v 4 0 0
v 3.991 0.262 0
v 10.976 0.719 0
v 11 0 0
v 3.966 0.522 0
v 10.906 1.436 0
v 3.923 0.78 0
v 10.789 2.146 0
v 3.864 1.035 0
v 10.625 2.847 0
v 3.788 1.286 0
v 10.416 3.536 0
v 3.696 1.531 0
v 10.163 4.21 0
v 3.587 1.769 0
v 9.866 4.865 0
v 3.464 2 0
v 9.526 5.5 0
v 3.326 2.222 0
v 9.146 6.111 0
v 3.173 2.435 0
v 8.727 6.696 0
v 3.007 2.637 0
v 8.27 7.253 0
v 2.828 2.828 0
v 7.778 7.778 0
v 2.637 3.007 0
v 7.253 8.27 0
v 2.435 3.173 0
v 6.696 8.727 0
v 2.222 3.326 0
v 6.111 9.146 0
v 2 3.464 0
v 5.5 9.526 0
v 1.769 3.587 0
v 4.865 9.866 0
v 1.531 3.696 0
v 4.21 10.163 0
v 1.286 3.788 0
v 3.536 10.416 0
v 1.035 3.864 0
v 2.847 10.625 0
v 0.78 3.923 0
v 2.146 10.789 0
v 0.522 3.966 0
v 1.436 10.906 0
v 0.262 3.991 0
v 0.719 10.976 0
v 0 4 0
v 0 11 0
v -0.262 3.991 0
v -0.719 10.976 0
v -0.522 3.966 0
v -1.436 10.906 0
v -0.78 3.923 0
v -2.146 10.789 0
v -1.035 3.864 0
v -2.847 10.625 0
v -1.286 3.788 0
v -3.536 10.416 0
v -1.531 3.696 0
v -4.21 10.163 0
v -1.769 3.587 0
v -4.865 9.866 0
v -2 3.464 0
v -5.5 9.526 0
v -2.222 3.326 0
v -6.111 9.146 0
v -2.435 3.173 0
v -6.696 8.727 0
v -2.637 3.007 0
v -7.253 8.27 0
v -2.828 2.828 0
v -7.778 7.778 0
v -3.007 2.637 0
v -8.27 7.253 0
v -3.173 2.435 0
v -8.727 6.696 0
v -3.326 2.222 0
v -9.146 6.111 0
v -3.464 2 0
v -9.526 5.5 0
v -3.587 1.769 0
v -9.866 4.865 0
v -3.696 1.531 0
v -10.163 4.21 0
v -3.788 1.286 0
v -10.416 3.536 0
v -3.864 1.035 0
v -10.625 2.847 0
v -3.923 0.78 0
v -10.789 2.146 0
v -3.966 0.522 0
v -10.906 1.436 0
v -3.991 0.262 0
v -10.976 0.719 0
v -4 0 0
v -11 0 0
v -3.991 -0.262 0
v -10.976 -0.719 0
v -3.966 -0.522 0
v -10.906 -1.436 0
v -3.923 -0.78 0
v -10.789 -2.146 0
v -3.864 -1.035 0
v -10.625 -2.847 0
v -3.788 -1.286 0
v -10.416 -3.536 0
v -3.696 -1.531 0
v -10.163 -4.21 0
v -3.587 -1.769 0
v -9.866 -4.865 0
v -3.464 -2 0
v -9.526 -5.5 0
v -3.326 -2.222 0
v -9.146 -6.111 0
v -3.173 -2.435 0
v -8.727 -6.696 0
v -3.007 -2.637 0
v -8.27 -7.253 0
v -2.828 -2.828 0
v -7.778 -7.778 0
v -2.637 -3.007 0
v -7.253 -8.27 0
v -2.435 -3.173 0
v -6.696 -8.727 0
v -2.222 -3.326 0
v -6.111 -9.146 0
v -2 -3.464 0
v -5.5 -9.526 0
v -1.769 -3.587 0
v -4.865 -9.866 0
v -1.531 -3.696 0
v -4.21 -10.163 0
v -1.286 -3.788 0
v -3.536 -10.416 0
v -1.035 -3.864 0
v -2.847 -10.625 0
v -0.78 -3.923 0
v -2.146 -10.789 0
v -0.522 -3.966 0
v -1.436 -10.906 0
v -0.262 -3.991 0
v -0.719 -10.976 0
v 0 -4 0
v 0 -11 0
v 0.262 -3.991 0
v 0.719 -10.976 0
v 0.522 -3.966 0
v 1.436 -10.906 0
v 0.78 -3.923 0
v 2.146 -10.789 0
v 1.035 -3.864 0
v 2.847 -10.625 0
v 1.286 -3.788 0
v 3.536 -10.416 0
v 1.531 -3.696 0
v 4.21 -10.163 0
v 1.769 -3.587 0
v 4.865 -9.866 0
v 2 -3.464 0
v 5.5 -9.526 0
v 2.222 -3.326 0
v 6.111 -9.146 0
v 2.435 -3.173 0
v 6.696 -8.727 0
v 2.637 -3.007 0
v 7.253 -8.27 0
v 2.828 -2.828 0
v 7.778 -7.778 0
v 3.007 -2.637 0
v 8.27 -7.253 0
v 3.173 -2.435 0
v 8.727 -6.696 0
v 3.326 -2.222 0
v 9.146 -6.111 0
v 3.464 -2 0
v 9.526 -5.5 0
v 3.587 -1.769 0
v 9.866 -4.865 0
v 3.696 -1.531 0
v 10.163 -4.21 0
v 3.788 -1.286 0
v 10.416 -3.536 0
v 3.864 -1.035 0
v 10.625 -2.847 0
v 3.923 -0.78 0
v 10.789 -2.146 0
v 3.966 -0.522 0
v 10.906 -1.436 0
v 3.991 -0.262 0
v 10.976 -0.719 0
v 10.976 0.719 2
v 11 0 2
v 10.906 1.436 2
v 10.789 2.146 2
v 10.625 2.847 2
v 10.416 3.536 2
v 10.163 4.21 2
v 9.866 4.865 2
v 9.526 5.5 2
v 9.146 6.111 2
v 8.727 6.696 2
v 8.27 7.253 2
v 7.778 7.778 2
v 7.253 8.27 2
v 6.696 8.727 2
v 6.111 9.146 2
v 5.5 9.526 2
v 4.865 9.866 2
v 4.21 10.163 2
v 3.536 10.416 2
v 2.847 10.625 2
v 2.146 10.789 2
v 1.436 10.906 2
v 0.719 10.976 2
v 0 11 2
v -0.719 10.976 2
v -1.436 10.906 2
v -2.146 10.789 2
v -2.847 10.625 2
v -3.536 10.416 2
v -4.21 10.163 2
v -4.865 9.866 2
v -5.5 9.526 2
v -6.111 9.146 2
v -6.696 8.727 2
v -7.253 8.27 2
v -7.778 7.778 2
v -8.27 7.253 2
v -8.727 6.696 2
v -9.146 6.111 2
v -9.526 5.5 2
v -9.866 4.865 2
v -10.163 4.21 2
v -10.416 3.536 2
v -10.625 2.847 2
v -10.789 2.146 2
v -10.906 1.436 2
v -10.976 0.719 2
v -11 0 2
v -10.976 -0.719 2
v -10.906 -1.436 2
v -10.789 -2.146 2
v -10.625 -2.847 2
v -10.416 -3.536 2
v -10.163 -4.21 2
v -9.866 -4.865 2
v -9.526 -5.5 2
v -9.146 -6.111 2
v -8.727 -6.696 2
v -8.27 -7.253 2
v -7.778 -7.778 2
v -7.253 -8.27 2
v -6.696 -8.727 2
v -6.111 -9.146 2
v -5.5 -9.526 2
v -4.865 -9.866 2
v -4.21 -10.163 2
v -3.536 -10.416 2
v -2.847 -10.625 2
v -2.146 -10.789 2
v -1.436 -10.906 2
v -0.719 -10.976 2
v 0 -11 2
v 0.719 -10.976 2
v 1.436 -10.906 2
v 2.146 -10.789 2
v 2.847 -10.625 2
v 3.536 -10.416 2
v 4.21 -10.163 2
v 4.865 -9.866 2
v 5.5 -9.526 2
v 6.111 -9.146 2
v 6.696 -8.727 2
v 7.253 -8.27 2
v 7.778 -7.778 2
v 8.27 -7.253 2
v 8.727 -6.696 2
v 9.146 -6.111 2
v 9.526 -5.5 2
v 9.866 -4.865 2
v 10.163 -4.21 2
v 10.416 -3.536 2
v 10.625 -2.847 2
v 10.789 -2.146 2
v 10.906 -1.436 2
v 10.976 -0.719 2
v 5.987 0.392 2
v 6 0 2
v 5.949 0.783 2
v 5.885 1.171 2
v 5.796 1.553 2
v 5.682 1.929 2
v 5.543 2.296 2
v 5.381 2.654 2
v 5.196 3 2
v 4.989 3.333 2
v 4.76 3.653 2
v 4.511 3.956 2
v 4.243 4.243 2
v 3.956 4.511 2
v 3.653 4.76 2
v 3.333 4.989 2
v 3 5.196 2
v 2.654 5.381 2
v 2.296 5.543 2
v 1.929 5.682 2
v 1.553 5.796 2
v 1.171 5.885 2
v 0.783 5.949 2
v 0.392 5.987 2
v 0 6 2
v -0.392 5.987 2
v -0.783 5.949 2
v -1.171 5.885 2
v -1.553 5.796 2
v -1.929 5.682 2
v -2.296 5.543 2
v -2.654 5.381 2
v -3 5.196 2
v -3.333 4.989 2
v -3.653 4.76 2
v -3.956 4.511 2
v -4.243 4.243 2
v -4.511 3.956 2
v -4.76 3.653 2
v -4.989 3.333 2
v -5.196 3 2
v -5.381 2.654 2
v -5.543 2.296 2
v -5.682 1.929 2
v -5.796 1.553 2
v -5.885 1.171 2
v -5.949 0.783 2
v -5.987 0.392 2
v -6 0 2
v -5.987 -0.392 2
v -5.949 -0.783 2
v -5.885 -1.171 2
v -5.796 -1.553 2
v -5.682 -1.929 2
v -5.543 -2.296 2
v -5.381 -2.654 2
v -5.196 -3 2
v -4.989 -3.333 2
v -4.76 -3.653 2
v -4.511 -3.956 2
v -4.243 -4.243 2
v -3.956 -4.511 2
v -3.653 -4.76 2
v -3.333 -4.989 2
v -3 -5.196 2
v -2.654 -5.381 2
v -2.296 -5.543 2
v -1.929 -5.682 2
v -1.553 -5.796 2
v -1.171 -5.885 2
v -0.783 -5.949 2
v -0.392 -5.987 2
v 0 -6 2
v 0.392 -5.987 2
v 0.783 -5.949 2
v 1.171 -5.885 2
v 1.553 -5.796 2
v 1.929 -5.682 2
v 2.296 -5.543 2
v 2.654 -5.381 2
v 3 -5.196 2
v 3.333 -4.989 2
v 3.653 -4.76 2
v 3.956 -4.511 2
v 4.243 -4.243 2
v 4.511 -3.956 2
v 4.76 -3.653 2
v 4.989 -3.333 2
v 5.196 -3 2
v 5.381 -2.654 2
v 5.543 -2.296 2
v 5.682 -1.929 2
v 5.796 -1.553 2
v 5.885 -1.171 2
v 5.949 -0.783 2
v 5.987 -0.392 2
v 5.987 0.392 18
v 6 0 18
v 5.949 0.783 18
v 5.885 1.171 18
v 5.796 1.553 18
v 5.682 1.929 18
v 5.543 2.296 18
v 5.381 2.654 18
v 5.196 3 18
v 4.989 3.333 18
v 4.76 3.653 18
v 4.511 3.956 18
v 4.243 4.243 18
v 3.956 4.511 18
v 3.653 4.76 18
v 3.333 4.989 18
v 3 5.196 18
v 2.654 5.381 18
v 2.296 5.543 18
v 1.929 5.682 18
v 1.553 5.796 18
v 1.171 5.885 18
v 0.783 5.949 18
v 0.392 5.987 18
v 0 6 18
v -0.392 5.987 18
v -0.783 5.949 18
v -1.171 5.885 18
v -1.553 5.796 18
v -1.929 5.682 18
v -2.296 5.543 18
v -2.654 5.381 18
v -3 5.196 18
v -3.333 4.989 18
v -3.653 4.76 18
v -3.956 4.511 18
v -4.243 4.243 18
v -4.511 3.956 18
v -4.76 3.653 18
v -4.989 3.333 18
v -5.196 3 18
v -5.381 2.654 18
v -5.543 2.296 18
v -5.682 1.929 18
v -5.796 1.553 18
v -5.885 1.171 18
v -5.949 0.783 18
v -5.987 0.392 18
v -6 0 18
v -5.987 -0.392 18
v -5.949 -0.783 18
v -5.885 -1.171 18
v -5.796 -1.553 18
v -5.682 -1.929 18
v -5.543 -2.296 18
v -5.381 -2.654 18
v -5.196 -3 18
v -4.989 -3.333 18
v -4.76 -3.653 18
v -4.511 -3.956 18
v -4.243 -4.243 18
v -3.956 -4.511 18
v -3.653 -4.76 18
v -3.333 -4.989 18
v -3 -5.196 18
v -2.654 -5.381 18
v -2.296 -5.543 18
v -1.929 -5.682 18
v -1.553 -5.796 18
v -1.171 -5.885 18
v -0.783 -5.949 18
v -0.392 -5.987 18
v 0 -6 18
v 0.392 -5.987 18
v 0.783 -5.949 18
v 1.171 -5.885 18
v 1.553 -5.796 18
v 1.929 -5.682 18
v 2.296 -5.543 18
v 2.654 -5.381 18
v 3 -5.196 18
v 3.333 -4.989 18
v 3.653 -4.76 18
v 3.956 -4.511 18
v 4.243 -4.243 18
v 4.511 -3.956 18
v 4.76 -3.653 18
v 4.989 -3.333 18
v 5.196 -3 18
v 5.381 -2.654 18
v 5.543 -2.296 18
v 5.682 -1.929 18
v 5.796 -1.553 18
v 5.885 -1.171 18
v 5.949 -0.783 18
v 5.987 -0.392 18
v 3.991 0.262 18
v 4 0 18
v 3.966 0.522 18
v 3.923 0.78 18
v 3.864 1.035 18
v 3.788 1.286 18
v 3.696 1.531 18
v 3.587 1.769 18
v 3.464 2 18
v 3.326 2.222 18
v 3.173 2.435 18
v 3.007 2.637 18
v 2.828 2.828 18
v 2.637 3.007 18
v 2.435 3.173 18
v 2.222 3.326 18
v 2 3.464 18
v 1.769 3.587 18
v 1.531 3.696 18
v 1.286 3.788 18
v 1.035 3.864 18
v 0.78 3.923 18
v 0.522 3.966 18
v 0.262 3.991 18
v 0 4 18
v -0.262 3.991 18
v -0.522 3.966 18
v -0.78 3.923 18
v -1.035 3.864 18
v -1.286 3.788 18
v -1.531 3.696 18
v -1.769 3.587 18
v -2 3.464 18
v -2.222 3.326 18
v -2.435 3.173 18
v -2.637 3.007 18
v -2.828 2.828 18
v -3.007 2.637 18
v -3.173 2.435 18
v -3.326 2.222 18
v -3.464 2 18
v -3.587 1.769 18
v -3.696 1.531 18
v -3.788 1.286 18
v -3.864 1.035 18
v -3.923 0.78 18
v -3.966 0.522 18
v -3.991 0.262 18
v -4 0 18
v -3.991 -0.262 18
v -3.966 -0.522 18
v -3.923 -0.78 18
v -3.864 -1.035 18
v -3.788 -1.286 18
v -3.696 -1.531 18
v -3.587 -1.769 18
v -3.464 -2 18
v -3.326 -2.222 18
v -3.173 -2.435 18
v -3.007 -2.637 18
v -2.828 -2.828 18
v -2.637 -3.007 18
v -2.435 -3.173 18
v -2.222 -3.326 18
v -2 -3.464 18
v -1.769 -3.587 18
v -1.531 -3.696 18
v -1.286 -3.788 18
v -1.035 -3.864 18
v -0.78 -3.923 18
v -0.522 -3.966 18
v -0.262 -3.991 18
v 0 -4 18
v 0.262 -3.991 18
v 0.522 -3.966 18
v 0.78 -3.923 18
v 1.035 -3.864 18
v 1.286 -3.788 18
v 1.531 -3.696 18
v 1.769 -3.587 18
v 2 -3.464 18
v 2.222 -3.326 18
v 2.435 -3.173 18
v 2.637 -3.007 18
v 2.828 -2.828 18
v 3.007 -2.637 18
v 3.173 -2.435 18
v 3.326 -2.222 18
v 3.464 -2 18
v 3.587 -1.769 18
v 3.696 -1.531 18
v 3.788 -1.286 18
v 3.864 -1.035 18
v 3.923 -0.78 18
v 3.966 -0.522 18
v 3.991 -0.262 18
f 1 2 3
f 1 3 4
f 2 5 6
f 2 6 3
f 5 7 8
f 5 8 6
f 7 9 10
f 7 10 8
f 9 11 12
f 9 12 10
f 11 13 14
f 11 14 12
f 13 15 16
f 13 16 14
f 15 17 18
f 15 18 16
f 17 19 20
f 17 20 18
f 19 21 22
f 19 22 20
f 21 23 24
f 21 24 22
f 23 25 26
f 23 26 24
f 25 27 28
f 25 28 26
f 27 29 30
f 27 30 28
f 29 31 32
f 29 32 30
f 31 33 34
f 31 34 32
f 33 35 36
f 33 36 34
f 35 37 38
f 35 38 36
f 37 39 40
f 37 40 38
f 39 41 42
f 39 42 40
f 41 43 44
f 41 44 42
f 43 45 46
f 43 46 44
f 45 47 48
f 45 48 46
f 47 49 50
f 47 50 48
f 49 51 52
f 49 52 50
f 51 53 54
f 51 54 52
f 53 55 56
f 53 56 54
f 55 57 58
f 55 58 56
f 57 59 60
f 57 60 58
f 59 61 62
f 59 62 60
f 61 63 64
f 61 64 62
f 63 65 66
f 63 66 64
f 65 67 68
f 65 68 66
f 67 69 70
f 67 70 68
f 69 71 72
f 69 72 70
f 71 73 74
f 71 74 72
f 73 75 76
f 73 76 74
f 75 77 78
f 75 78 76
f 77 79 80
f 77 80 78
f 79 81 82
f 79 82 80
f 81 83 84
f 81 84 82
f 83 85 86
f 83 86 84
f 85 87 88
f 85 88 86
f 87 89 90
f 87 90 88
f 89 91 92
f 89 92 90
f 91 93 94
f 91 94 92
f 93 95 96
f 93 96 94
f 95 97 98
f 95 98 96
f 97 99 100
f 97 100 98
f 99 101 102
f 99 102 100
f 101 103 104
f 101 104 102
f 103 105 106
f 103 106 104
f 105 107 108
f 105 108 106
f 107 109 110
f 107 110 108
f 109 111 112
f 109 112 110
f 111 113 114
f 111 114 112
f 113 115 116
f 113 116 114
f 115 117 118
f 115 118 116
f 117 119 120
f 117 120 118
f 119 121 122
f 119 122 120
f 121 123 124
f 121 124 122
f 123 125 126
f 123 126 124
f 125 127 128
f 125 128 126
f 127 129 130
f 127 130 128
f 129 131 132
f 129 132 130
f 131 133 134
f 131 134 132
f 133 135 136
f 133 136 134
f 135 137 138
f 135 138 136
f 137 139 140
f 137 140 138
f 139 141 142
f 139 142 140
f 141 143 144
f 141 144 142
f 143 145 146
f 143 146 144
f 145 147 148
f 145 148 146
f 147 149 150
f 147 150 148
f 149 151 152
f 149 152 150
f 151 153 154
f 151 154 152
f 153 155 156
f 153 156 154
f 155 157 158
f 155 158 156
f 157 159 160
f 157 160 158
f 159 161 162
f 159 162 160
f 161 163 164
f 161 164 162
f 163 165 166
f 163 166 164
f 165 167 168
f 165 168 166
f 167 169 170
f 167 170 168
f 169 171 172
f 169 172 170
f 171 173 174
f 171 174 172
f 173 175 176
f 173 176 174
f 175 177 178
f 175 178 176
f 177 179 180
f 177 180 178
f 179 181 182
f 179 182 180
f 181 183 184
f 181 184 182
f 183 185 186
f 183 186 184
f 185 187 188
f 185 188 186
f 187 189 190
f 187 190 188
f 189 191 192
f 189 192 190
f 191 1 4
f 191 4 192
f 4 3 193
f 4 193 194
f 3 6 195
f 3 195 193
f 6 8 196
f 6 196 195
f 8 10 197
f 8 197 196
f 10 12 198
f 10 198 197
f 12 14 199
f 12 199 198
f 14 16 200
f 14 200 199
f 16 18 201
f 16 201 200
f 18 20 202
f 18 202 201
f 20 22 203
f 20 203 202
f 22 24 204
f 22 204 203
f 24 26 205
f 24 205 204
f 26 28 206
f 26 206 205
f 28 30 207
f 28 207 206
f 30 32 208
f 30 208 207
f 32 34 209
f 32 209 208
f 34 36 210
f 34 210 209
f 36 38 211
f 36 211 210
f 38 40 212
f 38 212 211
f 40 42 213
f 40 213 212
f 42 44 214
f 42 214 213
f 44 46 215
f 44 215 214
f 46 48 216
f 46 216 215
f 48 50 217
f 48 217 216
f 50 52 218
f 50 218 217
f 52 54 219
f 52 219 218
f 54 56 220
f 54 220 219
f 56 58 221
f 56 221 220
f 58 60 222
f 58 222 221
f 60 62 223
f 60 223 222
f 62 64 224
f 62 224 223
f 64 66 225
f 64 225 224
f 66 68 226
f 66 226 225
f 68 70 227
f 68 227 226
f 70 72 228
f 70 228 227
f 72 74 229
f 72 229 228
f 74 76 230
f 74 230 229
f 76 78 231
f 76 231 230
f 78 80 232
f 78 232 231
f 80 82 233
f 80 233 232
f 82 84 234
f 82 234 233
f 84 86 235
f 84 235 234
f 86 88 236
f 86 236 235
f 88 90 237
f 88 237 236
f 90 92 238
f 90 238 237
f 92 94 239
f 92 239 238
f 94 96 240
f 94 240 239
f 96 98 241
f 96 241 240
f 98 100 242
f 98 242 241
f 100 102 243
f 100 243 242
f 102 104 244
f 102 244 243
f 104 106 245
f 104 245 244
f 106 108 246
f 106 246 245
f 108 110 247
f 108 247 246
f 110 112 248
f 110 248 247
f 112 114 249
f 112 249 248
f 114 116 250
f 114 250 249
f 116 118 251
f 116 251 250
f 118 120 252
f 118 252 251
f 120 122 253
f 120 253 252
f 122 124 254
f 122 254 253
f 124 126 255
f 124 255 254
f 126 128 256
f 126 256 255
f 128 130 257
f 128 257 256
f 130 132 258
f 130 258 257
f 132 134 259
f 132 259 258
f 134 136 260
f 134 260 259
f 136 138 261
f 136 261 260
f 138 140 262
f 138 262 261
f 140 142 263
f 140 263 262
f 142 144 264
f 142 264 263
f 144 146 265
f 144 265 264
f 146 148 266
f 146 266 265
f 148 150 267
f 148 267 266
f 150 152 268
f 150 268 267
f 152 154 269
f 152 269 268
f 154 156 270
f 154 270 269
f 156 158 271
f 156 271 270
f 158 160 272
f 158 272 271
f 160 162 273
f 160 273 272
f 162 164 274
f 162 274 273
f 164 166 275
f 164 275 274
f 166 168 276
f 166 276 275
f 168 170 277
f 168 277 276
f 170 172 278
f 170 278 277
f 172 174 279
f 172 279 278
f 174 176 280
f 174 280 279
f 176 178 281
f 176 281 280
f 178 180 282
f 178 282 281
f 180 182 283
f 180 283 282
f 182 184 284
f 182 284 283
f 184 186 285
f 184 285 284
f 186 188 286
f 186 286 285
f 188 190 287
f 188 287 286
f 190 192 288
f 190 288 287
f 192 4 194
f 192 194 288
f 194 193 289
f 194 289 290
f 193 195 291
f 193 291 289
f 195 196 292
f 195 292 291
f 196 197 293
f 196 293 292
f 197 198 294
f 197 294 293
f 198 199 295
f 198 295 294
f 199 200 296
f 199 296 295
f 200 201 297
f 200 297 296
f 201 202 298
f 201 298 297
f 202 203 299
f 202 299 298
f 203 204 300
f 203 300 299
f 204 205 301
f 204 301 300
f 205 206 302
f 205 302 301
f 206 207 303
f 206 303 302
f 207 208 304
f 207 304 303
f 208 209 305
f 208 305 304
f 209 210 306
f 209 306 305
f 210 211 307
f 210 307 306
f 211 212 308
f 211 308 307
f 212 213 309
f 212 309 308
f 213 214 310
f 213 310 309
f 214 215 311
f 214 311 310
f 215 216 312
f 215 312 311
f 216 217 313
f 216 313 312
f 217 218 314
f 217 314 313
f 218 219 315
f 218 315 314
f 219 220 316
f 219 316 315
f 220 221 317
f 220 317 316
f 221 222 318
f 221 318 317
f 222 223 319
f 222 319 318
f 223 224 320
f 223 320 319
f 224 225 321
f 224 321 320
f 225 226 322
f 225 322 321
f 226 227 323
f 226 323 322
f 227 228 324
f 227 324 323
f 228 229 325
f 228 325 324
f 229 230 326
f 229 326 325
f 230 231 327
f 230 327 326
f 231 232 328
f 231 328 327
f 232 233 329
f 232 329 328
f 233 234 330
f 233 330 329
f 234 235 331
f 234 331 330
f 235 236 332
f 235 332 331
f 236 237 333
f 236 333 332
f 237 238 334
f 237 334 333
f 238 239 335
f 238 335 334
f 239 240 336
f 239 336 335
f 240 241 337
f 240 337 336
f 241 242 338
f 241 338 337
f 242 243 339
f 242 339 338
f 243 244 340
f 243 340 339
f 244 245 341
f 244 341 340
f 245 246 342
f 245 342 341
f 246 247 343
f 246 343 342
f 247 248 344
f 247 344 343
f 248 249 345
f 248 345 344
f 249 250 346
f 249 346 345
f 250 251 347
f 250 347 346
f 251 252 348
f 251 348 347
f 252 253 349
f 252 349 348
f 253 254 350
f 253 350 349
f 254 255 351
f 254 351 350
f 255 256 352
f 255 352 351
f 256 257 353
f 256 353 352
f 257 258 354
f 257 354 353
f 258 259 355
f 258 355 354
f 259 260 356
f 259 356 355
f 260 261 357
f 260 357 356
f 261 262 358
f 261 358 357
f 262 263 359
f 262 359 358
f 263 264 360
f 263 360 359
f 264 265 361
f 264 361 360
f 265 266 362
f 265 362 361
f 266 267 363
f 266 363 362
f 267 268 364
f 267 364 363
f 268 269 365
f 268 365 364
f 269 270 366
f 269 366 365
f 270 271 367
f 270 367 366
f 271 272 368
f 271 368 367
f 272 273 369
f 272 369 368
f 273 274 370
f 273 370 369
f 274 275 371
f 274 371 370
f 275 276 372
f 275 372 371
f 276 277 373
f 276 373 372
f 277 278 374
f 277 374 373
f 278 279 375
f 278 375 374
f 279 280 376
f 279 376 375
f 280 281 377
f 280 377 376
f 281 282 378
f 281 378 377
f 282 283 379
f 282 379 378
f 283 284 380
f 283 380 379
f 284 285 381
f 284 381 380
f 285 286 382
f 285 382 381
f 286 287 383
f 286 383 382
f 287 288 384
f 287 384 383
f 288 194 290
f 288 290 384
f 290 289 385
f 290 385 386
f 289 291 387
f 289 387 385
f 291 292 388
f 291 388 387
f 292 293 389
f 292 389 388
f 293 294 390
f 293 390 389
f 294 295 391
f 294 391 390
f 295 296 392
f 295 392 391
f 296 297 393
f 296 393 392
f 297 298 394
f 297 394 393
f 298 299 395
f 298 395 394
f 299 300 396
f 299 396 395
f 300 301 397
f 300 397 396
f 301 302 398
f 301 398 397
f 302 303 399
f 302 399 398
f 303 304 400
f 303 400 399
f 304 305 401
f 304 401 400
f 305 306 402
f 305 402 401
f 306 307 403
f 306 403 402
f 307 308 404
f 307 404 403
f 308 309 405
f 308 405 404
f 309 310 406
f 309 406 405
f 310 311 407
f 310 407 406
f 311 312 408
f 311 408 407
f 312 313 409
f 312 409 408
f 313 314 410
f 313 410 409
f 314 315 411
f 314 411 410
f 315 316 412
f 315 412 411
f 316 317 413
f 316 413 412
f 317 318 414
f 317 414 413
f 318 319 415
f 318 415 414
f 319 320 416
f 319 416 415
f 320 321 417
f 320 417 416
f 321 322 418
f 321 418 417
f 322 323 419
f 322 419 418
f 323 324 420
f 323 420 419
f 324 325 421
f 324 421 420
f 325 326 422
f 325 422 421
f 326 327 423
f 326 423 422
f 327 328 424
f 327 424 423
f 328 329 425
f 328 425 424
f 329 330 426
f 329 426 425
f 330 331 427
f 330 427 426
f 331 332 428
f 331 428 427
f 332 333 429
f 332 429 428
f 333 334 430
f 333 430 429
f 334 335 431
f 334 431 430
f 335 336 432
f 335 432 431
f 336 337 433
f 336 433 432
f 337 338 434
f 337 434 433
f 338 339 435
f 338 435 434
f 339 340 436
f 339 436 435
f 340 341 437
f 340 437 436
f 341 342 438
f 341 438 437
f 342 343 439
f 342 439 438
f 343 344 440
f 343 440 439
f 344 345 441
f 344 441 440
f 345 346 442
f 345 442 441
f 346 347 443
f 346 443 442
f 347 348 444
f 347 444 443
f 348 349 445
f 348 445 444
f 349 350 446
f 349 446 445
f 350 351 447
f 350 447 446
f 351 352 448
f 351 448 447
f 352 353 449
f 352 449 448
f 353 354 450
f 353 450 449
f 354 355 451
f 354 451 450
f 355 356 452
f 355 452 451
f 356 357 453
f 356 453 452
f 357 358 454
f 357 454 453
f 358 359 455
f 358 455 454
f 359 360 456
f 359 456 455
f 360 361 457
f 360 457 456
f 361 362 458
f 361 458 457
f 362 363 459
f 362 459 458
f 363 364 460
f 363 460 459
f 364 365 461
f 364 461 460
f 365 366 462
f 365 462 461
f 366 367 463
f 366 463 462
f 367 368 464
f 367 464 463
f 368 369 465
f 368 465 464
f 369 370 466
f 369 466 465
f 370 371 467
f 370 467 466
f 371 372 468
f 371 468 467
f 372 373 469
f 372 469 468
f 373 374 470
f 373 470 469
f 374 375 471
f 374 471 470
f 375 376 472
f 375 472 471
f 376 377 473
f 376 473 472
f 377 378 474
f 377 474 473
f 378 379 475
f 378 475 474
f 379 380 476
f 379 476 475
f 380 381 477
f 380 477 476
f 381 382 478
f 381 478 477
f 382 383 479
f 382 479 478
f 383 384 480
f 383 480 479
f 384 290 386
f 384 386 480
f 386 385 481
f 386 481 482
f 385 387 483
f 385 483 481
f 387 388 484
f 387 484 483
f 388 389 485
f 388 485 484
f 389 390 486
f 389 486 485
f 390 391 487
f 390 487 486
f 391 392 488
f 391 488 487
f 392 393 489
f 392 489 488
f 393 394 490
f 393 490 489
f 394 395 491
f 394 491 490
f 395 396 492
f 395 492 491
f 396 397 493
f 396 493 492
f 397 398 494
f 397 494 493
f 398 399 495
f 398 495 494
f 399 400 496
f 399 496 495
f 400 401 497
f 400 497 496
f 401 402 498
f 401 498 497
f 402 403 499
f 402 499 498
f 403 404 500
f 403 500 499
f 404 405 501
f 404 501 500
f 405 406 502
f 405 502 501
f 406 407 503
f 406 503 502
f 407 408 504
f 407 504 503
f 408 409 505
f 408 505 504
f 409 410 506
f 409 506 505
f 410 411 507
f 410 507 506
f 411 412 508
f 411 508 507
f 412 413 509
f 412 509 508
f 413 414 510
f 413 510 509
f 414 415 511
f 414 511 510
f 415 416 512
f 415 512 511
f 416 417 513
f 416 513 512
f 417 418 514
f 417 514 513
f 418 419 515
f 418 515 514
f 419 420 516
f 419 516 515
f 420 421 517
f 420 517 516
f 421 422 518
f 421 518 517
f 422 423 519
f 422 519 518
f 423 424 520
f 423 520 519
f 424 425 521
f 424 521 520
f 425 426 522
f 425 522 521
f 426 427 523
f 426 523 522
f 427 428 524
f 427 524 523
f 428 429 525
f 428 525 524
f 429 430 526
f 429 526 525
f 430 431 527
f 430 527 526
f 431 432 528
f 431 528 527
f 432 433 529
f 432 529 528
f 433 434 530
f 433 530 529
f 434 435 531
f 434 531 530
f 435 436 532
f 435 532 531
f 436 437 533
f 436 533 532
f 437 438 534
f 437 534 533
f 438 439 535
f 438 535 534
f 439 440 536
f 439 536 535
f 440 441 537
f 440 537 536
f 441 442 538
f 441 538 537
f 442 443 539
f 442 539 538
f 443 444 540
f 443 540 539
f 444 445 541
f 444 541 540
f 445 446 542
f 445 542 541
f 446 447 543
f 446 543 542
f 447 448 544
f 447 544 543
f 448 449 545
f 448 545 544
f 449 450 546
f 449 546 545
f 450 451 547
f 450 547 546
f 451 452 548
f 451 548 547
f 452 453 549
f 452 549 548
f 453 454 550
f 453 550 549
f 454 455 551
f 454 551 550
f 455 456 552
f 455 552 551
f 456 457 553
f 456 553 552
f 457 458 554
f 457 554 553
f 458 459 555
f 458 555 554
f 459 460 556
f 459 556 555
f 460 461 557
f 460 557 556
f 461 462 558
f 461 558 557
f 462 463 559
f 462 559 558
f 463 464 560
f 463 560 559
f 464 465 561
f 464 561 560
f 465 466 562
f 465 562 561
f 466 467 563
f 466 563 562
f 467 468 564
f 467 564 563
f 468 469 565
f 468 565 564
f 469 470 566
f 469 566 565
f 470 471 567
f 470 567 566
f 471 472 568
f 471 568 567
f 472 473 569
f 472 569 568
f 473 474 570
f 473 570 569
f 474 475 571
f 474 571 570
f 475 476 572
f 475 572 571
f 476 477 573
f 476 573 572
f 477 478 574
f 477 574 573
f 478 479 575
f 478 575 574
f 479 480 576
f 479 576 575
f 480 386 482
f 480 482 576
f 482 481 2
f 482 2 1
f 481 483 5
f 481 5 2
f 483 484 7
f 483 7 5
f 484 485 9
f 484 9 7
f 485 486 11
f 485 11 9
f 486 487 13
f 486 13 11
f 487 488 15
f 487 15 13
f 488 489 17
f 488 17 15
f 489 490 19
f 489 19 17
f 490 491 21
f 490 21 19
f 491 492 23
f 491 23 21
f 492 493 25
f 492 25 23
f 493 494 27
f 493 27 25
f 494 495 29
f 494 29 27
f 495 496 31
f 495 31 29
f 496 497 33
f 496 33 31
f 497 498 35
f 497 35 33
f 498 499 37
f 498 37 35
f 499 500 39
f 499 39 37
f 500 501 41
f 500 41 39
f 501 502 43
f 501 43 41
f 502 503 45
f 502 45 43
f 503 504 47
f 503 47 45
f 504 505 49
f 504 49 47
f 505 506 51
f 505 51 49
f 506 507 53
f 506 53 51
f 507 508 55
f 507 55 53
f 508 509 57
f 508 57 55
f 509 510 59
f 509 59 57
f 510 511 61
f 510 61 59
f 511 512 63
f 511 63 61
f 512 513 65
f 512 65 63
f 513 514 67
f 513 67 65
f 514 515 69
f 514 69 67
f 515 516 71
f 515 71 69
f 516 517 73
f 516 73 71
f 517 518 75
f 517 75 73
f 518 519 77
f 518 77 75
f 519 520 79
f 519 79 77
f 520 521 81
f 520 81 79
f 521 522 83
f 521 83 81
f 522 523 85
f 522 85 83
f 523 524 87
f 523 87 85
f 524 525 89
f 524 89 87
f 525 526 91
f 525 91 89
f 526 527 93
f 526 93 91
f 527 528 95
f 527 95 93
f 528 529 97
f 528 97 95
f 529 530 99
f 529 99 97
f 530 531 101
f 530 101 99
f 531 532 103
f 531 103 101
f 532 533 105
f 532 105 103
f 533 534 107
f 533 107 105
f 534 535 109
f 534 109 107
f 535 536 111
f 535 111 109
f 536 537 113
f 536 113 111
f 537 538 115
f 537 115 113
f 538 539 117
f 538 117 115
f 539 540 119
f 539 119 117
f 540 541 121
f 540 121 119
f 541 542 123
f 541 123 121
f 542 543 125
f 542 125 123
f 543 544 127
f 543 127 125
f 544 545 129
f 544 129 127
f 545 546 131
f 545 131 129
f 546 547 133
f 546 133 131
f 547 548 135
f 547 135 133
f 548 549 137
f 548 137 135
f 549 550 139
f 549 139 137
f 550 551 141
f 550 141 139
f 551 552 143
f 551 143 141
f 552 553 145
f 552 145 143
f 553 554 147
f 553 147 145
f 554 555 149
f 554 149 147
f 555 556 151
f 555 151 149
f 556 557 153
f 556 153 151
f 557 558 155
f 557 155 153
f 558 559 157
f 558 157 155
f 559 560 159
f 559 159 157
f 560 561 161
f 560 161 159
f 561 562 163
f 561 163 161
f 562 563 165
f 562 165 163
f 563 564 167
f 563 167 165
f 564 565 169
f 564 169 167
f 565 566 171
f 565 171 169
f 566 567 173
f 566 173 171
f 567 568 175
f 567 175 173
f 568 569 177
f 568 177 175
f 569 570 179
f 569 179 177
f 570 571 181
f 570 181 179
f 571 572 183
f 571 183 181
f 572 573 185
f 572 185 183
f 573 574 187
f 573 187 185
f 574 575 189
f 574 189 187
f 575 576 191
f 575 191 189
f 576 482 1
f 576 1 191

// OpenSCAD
// Original MechIntel educational model. CC0-1.0. Units: mm.
// Not a standardized or load-rated component.
$fn=96;
// Section points: [radius, height], mm. Edit to change the profile.
section=[[4, 0], [11, 0], [11, 2], [6, 2], [6, 18], [4, 18]];
rotate_extrude($fn=96) polygon(points=section);
